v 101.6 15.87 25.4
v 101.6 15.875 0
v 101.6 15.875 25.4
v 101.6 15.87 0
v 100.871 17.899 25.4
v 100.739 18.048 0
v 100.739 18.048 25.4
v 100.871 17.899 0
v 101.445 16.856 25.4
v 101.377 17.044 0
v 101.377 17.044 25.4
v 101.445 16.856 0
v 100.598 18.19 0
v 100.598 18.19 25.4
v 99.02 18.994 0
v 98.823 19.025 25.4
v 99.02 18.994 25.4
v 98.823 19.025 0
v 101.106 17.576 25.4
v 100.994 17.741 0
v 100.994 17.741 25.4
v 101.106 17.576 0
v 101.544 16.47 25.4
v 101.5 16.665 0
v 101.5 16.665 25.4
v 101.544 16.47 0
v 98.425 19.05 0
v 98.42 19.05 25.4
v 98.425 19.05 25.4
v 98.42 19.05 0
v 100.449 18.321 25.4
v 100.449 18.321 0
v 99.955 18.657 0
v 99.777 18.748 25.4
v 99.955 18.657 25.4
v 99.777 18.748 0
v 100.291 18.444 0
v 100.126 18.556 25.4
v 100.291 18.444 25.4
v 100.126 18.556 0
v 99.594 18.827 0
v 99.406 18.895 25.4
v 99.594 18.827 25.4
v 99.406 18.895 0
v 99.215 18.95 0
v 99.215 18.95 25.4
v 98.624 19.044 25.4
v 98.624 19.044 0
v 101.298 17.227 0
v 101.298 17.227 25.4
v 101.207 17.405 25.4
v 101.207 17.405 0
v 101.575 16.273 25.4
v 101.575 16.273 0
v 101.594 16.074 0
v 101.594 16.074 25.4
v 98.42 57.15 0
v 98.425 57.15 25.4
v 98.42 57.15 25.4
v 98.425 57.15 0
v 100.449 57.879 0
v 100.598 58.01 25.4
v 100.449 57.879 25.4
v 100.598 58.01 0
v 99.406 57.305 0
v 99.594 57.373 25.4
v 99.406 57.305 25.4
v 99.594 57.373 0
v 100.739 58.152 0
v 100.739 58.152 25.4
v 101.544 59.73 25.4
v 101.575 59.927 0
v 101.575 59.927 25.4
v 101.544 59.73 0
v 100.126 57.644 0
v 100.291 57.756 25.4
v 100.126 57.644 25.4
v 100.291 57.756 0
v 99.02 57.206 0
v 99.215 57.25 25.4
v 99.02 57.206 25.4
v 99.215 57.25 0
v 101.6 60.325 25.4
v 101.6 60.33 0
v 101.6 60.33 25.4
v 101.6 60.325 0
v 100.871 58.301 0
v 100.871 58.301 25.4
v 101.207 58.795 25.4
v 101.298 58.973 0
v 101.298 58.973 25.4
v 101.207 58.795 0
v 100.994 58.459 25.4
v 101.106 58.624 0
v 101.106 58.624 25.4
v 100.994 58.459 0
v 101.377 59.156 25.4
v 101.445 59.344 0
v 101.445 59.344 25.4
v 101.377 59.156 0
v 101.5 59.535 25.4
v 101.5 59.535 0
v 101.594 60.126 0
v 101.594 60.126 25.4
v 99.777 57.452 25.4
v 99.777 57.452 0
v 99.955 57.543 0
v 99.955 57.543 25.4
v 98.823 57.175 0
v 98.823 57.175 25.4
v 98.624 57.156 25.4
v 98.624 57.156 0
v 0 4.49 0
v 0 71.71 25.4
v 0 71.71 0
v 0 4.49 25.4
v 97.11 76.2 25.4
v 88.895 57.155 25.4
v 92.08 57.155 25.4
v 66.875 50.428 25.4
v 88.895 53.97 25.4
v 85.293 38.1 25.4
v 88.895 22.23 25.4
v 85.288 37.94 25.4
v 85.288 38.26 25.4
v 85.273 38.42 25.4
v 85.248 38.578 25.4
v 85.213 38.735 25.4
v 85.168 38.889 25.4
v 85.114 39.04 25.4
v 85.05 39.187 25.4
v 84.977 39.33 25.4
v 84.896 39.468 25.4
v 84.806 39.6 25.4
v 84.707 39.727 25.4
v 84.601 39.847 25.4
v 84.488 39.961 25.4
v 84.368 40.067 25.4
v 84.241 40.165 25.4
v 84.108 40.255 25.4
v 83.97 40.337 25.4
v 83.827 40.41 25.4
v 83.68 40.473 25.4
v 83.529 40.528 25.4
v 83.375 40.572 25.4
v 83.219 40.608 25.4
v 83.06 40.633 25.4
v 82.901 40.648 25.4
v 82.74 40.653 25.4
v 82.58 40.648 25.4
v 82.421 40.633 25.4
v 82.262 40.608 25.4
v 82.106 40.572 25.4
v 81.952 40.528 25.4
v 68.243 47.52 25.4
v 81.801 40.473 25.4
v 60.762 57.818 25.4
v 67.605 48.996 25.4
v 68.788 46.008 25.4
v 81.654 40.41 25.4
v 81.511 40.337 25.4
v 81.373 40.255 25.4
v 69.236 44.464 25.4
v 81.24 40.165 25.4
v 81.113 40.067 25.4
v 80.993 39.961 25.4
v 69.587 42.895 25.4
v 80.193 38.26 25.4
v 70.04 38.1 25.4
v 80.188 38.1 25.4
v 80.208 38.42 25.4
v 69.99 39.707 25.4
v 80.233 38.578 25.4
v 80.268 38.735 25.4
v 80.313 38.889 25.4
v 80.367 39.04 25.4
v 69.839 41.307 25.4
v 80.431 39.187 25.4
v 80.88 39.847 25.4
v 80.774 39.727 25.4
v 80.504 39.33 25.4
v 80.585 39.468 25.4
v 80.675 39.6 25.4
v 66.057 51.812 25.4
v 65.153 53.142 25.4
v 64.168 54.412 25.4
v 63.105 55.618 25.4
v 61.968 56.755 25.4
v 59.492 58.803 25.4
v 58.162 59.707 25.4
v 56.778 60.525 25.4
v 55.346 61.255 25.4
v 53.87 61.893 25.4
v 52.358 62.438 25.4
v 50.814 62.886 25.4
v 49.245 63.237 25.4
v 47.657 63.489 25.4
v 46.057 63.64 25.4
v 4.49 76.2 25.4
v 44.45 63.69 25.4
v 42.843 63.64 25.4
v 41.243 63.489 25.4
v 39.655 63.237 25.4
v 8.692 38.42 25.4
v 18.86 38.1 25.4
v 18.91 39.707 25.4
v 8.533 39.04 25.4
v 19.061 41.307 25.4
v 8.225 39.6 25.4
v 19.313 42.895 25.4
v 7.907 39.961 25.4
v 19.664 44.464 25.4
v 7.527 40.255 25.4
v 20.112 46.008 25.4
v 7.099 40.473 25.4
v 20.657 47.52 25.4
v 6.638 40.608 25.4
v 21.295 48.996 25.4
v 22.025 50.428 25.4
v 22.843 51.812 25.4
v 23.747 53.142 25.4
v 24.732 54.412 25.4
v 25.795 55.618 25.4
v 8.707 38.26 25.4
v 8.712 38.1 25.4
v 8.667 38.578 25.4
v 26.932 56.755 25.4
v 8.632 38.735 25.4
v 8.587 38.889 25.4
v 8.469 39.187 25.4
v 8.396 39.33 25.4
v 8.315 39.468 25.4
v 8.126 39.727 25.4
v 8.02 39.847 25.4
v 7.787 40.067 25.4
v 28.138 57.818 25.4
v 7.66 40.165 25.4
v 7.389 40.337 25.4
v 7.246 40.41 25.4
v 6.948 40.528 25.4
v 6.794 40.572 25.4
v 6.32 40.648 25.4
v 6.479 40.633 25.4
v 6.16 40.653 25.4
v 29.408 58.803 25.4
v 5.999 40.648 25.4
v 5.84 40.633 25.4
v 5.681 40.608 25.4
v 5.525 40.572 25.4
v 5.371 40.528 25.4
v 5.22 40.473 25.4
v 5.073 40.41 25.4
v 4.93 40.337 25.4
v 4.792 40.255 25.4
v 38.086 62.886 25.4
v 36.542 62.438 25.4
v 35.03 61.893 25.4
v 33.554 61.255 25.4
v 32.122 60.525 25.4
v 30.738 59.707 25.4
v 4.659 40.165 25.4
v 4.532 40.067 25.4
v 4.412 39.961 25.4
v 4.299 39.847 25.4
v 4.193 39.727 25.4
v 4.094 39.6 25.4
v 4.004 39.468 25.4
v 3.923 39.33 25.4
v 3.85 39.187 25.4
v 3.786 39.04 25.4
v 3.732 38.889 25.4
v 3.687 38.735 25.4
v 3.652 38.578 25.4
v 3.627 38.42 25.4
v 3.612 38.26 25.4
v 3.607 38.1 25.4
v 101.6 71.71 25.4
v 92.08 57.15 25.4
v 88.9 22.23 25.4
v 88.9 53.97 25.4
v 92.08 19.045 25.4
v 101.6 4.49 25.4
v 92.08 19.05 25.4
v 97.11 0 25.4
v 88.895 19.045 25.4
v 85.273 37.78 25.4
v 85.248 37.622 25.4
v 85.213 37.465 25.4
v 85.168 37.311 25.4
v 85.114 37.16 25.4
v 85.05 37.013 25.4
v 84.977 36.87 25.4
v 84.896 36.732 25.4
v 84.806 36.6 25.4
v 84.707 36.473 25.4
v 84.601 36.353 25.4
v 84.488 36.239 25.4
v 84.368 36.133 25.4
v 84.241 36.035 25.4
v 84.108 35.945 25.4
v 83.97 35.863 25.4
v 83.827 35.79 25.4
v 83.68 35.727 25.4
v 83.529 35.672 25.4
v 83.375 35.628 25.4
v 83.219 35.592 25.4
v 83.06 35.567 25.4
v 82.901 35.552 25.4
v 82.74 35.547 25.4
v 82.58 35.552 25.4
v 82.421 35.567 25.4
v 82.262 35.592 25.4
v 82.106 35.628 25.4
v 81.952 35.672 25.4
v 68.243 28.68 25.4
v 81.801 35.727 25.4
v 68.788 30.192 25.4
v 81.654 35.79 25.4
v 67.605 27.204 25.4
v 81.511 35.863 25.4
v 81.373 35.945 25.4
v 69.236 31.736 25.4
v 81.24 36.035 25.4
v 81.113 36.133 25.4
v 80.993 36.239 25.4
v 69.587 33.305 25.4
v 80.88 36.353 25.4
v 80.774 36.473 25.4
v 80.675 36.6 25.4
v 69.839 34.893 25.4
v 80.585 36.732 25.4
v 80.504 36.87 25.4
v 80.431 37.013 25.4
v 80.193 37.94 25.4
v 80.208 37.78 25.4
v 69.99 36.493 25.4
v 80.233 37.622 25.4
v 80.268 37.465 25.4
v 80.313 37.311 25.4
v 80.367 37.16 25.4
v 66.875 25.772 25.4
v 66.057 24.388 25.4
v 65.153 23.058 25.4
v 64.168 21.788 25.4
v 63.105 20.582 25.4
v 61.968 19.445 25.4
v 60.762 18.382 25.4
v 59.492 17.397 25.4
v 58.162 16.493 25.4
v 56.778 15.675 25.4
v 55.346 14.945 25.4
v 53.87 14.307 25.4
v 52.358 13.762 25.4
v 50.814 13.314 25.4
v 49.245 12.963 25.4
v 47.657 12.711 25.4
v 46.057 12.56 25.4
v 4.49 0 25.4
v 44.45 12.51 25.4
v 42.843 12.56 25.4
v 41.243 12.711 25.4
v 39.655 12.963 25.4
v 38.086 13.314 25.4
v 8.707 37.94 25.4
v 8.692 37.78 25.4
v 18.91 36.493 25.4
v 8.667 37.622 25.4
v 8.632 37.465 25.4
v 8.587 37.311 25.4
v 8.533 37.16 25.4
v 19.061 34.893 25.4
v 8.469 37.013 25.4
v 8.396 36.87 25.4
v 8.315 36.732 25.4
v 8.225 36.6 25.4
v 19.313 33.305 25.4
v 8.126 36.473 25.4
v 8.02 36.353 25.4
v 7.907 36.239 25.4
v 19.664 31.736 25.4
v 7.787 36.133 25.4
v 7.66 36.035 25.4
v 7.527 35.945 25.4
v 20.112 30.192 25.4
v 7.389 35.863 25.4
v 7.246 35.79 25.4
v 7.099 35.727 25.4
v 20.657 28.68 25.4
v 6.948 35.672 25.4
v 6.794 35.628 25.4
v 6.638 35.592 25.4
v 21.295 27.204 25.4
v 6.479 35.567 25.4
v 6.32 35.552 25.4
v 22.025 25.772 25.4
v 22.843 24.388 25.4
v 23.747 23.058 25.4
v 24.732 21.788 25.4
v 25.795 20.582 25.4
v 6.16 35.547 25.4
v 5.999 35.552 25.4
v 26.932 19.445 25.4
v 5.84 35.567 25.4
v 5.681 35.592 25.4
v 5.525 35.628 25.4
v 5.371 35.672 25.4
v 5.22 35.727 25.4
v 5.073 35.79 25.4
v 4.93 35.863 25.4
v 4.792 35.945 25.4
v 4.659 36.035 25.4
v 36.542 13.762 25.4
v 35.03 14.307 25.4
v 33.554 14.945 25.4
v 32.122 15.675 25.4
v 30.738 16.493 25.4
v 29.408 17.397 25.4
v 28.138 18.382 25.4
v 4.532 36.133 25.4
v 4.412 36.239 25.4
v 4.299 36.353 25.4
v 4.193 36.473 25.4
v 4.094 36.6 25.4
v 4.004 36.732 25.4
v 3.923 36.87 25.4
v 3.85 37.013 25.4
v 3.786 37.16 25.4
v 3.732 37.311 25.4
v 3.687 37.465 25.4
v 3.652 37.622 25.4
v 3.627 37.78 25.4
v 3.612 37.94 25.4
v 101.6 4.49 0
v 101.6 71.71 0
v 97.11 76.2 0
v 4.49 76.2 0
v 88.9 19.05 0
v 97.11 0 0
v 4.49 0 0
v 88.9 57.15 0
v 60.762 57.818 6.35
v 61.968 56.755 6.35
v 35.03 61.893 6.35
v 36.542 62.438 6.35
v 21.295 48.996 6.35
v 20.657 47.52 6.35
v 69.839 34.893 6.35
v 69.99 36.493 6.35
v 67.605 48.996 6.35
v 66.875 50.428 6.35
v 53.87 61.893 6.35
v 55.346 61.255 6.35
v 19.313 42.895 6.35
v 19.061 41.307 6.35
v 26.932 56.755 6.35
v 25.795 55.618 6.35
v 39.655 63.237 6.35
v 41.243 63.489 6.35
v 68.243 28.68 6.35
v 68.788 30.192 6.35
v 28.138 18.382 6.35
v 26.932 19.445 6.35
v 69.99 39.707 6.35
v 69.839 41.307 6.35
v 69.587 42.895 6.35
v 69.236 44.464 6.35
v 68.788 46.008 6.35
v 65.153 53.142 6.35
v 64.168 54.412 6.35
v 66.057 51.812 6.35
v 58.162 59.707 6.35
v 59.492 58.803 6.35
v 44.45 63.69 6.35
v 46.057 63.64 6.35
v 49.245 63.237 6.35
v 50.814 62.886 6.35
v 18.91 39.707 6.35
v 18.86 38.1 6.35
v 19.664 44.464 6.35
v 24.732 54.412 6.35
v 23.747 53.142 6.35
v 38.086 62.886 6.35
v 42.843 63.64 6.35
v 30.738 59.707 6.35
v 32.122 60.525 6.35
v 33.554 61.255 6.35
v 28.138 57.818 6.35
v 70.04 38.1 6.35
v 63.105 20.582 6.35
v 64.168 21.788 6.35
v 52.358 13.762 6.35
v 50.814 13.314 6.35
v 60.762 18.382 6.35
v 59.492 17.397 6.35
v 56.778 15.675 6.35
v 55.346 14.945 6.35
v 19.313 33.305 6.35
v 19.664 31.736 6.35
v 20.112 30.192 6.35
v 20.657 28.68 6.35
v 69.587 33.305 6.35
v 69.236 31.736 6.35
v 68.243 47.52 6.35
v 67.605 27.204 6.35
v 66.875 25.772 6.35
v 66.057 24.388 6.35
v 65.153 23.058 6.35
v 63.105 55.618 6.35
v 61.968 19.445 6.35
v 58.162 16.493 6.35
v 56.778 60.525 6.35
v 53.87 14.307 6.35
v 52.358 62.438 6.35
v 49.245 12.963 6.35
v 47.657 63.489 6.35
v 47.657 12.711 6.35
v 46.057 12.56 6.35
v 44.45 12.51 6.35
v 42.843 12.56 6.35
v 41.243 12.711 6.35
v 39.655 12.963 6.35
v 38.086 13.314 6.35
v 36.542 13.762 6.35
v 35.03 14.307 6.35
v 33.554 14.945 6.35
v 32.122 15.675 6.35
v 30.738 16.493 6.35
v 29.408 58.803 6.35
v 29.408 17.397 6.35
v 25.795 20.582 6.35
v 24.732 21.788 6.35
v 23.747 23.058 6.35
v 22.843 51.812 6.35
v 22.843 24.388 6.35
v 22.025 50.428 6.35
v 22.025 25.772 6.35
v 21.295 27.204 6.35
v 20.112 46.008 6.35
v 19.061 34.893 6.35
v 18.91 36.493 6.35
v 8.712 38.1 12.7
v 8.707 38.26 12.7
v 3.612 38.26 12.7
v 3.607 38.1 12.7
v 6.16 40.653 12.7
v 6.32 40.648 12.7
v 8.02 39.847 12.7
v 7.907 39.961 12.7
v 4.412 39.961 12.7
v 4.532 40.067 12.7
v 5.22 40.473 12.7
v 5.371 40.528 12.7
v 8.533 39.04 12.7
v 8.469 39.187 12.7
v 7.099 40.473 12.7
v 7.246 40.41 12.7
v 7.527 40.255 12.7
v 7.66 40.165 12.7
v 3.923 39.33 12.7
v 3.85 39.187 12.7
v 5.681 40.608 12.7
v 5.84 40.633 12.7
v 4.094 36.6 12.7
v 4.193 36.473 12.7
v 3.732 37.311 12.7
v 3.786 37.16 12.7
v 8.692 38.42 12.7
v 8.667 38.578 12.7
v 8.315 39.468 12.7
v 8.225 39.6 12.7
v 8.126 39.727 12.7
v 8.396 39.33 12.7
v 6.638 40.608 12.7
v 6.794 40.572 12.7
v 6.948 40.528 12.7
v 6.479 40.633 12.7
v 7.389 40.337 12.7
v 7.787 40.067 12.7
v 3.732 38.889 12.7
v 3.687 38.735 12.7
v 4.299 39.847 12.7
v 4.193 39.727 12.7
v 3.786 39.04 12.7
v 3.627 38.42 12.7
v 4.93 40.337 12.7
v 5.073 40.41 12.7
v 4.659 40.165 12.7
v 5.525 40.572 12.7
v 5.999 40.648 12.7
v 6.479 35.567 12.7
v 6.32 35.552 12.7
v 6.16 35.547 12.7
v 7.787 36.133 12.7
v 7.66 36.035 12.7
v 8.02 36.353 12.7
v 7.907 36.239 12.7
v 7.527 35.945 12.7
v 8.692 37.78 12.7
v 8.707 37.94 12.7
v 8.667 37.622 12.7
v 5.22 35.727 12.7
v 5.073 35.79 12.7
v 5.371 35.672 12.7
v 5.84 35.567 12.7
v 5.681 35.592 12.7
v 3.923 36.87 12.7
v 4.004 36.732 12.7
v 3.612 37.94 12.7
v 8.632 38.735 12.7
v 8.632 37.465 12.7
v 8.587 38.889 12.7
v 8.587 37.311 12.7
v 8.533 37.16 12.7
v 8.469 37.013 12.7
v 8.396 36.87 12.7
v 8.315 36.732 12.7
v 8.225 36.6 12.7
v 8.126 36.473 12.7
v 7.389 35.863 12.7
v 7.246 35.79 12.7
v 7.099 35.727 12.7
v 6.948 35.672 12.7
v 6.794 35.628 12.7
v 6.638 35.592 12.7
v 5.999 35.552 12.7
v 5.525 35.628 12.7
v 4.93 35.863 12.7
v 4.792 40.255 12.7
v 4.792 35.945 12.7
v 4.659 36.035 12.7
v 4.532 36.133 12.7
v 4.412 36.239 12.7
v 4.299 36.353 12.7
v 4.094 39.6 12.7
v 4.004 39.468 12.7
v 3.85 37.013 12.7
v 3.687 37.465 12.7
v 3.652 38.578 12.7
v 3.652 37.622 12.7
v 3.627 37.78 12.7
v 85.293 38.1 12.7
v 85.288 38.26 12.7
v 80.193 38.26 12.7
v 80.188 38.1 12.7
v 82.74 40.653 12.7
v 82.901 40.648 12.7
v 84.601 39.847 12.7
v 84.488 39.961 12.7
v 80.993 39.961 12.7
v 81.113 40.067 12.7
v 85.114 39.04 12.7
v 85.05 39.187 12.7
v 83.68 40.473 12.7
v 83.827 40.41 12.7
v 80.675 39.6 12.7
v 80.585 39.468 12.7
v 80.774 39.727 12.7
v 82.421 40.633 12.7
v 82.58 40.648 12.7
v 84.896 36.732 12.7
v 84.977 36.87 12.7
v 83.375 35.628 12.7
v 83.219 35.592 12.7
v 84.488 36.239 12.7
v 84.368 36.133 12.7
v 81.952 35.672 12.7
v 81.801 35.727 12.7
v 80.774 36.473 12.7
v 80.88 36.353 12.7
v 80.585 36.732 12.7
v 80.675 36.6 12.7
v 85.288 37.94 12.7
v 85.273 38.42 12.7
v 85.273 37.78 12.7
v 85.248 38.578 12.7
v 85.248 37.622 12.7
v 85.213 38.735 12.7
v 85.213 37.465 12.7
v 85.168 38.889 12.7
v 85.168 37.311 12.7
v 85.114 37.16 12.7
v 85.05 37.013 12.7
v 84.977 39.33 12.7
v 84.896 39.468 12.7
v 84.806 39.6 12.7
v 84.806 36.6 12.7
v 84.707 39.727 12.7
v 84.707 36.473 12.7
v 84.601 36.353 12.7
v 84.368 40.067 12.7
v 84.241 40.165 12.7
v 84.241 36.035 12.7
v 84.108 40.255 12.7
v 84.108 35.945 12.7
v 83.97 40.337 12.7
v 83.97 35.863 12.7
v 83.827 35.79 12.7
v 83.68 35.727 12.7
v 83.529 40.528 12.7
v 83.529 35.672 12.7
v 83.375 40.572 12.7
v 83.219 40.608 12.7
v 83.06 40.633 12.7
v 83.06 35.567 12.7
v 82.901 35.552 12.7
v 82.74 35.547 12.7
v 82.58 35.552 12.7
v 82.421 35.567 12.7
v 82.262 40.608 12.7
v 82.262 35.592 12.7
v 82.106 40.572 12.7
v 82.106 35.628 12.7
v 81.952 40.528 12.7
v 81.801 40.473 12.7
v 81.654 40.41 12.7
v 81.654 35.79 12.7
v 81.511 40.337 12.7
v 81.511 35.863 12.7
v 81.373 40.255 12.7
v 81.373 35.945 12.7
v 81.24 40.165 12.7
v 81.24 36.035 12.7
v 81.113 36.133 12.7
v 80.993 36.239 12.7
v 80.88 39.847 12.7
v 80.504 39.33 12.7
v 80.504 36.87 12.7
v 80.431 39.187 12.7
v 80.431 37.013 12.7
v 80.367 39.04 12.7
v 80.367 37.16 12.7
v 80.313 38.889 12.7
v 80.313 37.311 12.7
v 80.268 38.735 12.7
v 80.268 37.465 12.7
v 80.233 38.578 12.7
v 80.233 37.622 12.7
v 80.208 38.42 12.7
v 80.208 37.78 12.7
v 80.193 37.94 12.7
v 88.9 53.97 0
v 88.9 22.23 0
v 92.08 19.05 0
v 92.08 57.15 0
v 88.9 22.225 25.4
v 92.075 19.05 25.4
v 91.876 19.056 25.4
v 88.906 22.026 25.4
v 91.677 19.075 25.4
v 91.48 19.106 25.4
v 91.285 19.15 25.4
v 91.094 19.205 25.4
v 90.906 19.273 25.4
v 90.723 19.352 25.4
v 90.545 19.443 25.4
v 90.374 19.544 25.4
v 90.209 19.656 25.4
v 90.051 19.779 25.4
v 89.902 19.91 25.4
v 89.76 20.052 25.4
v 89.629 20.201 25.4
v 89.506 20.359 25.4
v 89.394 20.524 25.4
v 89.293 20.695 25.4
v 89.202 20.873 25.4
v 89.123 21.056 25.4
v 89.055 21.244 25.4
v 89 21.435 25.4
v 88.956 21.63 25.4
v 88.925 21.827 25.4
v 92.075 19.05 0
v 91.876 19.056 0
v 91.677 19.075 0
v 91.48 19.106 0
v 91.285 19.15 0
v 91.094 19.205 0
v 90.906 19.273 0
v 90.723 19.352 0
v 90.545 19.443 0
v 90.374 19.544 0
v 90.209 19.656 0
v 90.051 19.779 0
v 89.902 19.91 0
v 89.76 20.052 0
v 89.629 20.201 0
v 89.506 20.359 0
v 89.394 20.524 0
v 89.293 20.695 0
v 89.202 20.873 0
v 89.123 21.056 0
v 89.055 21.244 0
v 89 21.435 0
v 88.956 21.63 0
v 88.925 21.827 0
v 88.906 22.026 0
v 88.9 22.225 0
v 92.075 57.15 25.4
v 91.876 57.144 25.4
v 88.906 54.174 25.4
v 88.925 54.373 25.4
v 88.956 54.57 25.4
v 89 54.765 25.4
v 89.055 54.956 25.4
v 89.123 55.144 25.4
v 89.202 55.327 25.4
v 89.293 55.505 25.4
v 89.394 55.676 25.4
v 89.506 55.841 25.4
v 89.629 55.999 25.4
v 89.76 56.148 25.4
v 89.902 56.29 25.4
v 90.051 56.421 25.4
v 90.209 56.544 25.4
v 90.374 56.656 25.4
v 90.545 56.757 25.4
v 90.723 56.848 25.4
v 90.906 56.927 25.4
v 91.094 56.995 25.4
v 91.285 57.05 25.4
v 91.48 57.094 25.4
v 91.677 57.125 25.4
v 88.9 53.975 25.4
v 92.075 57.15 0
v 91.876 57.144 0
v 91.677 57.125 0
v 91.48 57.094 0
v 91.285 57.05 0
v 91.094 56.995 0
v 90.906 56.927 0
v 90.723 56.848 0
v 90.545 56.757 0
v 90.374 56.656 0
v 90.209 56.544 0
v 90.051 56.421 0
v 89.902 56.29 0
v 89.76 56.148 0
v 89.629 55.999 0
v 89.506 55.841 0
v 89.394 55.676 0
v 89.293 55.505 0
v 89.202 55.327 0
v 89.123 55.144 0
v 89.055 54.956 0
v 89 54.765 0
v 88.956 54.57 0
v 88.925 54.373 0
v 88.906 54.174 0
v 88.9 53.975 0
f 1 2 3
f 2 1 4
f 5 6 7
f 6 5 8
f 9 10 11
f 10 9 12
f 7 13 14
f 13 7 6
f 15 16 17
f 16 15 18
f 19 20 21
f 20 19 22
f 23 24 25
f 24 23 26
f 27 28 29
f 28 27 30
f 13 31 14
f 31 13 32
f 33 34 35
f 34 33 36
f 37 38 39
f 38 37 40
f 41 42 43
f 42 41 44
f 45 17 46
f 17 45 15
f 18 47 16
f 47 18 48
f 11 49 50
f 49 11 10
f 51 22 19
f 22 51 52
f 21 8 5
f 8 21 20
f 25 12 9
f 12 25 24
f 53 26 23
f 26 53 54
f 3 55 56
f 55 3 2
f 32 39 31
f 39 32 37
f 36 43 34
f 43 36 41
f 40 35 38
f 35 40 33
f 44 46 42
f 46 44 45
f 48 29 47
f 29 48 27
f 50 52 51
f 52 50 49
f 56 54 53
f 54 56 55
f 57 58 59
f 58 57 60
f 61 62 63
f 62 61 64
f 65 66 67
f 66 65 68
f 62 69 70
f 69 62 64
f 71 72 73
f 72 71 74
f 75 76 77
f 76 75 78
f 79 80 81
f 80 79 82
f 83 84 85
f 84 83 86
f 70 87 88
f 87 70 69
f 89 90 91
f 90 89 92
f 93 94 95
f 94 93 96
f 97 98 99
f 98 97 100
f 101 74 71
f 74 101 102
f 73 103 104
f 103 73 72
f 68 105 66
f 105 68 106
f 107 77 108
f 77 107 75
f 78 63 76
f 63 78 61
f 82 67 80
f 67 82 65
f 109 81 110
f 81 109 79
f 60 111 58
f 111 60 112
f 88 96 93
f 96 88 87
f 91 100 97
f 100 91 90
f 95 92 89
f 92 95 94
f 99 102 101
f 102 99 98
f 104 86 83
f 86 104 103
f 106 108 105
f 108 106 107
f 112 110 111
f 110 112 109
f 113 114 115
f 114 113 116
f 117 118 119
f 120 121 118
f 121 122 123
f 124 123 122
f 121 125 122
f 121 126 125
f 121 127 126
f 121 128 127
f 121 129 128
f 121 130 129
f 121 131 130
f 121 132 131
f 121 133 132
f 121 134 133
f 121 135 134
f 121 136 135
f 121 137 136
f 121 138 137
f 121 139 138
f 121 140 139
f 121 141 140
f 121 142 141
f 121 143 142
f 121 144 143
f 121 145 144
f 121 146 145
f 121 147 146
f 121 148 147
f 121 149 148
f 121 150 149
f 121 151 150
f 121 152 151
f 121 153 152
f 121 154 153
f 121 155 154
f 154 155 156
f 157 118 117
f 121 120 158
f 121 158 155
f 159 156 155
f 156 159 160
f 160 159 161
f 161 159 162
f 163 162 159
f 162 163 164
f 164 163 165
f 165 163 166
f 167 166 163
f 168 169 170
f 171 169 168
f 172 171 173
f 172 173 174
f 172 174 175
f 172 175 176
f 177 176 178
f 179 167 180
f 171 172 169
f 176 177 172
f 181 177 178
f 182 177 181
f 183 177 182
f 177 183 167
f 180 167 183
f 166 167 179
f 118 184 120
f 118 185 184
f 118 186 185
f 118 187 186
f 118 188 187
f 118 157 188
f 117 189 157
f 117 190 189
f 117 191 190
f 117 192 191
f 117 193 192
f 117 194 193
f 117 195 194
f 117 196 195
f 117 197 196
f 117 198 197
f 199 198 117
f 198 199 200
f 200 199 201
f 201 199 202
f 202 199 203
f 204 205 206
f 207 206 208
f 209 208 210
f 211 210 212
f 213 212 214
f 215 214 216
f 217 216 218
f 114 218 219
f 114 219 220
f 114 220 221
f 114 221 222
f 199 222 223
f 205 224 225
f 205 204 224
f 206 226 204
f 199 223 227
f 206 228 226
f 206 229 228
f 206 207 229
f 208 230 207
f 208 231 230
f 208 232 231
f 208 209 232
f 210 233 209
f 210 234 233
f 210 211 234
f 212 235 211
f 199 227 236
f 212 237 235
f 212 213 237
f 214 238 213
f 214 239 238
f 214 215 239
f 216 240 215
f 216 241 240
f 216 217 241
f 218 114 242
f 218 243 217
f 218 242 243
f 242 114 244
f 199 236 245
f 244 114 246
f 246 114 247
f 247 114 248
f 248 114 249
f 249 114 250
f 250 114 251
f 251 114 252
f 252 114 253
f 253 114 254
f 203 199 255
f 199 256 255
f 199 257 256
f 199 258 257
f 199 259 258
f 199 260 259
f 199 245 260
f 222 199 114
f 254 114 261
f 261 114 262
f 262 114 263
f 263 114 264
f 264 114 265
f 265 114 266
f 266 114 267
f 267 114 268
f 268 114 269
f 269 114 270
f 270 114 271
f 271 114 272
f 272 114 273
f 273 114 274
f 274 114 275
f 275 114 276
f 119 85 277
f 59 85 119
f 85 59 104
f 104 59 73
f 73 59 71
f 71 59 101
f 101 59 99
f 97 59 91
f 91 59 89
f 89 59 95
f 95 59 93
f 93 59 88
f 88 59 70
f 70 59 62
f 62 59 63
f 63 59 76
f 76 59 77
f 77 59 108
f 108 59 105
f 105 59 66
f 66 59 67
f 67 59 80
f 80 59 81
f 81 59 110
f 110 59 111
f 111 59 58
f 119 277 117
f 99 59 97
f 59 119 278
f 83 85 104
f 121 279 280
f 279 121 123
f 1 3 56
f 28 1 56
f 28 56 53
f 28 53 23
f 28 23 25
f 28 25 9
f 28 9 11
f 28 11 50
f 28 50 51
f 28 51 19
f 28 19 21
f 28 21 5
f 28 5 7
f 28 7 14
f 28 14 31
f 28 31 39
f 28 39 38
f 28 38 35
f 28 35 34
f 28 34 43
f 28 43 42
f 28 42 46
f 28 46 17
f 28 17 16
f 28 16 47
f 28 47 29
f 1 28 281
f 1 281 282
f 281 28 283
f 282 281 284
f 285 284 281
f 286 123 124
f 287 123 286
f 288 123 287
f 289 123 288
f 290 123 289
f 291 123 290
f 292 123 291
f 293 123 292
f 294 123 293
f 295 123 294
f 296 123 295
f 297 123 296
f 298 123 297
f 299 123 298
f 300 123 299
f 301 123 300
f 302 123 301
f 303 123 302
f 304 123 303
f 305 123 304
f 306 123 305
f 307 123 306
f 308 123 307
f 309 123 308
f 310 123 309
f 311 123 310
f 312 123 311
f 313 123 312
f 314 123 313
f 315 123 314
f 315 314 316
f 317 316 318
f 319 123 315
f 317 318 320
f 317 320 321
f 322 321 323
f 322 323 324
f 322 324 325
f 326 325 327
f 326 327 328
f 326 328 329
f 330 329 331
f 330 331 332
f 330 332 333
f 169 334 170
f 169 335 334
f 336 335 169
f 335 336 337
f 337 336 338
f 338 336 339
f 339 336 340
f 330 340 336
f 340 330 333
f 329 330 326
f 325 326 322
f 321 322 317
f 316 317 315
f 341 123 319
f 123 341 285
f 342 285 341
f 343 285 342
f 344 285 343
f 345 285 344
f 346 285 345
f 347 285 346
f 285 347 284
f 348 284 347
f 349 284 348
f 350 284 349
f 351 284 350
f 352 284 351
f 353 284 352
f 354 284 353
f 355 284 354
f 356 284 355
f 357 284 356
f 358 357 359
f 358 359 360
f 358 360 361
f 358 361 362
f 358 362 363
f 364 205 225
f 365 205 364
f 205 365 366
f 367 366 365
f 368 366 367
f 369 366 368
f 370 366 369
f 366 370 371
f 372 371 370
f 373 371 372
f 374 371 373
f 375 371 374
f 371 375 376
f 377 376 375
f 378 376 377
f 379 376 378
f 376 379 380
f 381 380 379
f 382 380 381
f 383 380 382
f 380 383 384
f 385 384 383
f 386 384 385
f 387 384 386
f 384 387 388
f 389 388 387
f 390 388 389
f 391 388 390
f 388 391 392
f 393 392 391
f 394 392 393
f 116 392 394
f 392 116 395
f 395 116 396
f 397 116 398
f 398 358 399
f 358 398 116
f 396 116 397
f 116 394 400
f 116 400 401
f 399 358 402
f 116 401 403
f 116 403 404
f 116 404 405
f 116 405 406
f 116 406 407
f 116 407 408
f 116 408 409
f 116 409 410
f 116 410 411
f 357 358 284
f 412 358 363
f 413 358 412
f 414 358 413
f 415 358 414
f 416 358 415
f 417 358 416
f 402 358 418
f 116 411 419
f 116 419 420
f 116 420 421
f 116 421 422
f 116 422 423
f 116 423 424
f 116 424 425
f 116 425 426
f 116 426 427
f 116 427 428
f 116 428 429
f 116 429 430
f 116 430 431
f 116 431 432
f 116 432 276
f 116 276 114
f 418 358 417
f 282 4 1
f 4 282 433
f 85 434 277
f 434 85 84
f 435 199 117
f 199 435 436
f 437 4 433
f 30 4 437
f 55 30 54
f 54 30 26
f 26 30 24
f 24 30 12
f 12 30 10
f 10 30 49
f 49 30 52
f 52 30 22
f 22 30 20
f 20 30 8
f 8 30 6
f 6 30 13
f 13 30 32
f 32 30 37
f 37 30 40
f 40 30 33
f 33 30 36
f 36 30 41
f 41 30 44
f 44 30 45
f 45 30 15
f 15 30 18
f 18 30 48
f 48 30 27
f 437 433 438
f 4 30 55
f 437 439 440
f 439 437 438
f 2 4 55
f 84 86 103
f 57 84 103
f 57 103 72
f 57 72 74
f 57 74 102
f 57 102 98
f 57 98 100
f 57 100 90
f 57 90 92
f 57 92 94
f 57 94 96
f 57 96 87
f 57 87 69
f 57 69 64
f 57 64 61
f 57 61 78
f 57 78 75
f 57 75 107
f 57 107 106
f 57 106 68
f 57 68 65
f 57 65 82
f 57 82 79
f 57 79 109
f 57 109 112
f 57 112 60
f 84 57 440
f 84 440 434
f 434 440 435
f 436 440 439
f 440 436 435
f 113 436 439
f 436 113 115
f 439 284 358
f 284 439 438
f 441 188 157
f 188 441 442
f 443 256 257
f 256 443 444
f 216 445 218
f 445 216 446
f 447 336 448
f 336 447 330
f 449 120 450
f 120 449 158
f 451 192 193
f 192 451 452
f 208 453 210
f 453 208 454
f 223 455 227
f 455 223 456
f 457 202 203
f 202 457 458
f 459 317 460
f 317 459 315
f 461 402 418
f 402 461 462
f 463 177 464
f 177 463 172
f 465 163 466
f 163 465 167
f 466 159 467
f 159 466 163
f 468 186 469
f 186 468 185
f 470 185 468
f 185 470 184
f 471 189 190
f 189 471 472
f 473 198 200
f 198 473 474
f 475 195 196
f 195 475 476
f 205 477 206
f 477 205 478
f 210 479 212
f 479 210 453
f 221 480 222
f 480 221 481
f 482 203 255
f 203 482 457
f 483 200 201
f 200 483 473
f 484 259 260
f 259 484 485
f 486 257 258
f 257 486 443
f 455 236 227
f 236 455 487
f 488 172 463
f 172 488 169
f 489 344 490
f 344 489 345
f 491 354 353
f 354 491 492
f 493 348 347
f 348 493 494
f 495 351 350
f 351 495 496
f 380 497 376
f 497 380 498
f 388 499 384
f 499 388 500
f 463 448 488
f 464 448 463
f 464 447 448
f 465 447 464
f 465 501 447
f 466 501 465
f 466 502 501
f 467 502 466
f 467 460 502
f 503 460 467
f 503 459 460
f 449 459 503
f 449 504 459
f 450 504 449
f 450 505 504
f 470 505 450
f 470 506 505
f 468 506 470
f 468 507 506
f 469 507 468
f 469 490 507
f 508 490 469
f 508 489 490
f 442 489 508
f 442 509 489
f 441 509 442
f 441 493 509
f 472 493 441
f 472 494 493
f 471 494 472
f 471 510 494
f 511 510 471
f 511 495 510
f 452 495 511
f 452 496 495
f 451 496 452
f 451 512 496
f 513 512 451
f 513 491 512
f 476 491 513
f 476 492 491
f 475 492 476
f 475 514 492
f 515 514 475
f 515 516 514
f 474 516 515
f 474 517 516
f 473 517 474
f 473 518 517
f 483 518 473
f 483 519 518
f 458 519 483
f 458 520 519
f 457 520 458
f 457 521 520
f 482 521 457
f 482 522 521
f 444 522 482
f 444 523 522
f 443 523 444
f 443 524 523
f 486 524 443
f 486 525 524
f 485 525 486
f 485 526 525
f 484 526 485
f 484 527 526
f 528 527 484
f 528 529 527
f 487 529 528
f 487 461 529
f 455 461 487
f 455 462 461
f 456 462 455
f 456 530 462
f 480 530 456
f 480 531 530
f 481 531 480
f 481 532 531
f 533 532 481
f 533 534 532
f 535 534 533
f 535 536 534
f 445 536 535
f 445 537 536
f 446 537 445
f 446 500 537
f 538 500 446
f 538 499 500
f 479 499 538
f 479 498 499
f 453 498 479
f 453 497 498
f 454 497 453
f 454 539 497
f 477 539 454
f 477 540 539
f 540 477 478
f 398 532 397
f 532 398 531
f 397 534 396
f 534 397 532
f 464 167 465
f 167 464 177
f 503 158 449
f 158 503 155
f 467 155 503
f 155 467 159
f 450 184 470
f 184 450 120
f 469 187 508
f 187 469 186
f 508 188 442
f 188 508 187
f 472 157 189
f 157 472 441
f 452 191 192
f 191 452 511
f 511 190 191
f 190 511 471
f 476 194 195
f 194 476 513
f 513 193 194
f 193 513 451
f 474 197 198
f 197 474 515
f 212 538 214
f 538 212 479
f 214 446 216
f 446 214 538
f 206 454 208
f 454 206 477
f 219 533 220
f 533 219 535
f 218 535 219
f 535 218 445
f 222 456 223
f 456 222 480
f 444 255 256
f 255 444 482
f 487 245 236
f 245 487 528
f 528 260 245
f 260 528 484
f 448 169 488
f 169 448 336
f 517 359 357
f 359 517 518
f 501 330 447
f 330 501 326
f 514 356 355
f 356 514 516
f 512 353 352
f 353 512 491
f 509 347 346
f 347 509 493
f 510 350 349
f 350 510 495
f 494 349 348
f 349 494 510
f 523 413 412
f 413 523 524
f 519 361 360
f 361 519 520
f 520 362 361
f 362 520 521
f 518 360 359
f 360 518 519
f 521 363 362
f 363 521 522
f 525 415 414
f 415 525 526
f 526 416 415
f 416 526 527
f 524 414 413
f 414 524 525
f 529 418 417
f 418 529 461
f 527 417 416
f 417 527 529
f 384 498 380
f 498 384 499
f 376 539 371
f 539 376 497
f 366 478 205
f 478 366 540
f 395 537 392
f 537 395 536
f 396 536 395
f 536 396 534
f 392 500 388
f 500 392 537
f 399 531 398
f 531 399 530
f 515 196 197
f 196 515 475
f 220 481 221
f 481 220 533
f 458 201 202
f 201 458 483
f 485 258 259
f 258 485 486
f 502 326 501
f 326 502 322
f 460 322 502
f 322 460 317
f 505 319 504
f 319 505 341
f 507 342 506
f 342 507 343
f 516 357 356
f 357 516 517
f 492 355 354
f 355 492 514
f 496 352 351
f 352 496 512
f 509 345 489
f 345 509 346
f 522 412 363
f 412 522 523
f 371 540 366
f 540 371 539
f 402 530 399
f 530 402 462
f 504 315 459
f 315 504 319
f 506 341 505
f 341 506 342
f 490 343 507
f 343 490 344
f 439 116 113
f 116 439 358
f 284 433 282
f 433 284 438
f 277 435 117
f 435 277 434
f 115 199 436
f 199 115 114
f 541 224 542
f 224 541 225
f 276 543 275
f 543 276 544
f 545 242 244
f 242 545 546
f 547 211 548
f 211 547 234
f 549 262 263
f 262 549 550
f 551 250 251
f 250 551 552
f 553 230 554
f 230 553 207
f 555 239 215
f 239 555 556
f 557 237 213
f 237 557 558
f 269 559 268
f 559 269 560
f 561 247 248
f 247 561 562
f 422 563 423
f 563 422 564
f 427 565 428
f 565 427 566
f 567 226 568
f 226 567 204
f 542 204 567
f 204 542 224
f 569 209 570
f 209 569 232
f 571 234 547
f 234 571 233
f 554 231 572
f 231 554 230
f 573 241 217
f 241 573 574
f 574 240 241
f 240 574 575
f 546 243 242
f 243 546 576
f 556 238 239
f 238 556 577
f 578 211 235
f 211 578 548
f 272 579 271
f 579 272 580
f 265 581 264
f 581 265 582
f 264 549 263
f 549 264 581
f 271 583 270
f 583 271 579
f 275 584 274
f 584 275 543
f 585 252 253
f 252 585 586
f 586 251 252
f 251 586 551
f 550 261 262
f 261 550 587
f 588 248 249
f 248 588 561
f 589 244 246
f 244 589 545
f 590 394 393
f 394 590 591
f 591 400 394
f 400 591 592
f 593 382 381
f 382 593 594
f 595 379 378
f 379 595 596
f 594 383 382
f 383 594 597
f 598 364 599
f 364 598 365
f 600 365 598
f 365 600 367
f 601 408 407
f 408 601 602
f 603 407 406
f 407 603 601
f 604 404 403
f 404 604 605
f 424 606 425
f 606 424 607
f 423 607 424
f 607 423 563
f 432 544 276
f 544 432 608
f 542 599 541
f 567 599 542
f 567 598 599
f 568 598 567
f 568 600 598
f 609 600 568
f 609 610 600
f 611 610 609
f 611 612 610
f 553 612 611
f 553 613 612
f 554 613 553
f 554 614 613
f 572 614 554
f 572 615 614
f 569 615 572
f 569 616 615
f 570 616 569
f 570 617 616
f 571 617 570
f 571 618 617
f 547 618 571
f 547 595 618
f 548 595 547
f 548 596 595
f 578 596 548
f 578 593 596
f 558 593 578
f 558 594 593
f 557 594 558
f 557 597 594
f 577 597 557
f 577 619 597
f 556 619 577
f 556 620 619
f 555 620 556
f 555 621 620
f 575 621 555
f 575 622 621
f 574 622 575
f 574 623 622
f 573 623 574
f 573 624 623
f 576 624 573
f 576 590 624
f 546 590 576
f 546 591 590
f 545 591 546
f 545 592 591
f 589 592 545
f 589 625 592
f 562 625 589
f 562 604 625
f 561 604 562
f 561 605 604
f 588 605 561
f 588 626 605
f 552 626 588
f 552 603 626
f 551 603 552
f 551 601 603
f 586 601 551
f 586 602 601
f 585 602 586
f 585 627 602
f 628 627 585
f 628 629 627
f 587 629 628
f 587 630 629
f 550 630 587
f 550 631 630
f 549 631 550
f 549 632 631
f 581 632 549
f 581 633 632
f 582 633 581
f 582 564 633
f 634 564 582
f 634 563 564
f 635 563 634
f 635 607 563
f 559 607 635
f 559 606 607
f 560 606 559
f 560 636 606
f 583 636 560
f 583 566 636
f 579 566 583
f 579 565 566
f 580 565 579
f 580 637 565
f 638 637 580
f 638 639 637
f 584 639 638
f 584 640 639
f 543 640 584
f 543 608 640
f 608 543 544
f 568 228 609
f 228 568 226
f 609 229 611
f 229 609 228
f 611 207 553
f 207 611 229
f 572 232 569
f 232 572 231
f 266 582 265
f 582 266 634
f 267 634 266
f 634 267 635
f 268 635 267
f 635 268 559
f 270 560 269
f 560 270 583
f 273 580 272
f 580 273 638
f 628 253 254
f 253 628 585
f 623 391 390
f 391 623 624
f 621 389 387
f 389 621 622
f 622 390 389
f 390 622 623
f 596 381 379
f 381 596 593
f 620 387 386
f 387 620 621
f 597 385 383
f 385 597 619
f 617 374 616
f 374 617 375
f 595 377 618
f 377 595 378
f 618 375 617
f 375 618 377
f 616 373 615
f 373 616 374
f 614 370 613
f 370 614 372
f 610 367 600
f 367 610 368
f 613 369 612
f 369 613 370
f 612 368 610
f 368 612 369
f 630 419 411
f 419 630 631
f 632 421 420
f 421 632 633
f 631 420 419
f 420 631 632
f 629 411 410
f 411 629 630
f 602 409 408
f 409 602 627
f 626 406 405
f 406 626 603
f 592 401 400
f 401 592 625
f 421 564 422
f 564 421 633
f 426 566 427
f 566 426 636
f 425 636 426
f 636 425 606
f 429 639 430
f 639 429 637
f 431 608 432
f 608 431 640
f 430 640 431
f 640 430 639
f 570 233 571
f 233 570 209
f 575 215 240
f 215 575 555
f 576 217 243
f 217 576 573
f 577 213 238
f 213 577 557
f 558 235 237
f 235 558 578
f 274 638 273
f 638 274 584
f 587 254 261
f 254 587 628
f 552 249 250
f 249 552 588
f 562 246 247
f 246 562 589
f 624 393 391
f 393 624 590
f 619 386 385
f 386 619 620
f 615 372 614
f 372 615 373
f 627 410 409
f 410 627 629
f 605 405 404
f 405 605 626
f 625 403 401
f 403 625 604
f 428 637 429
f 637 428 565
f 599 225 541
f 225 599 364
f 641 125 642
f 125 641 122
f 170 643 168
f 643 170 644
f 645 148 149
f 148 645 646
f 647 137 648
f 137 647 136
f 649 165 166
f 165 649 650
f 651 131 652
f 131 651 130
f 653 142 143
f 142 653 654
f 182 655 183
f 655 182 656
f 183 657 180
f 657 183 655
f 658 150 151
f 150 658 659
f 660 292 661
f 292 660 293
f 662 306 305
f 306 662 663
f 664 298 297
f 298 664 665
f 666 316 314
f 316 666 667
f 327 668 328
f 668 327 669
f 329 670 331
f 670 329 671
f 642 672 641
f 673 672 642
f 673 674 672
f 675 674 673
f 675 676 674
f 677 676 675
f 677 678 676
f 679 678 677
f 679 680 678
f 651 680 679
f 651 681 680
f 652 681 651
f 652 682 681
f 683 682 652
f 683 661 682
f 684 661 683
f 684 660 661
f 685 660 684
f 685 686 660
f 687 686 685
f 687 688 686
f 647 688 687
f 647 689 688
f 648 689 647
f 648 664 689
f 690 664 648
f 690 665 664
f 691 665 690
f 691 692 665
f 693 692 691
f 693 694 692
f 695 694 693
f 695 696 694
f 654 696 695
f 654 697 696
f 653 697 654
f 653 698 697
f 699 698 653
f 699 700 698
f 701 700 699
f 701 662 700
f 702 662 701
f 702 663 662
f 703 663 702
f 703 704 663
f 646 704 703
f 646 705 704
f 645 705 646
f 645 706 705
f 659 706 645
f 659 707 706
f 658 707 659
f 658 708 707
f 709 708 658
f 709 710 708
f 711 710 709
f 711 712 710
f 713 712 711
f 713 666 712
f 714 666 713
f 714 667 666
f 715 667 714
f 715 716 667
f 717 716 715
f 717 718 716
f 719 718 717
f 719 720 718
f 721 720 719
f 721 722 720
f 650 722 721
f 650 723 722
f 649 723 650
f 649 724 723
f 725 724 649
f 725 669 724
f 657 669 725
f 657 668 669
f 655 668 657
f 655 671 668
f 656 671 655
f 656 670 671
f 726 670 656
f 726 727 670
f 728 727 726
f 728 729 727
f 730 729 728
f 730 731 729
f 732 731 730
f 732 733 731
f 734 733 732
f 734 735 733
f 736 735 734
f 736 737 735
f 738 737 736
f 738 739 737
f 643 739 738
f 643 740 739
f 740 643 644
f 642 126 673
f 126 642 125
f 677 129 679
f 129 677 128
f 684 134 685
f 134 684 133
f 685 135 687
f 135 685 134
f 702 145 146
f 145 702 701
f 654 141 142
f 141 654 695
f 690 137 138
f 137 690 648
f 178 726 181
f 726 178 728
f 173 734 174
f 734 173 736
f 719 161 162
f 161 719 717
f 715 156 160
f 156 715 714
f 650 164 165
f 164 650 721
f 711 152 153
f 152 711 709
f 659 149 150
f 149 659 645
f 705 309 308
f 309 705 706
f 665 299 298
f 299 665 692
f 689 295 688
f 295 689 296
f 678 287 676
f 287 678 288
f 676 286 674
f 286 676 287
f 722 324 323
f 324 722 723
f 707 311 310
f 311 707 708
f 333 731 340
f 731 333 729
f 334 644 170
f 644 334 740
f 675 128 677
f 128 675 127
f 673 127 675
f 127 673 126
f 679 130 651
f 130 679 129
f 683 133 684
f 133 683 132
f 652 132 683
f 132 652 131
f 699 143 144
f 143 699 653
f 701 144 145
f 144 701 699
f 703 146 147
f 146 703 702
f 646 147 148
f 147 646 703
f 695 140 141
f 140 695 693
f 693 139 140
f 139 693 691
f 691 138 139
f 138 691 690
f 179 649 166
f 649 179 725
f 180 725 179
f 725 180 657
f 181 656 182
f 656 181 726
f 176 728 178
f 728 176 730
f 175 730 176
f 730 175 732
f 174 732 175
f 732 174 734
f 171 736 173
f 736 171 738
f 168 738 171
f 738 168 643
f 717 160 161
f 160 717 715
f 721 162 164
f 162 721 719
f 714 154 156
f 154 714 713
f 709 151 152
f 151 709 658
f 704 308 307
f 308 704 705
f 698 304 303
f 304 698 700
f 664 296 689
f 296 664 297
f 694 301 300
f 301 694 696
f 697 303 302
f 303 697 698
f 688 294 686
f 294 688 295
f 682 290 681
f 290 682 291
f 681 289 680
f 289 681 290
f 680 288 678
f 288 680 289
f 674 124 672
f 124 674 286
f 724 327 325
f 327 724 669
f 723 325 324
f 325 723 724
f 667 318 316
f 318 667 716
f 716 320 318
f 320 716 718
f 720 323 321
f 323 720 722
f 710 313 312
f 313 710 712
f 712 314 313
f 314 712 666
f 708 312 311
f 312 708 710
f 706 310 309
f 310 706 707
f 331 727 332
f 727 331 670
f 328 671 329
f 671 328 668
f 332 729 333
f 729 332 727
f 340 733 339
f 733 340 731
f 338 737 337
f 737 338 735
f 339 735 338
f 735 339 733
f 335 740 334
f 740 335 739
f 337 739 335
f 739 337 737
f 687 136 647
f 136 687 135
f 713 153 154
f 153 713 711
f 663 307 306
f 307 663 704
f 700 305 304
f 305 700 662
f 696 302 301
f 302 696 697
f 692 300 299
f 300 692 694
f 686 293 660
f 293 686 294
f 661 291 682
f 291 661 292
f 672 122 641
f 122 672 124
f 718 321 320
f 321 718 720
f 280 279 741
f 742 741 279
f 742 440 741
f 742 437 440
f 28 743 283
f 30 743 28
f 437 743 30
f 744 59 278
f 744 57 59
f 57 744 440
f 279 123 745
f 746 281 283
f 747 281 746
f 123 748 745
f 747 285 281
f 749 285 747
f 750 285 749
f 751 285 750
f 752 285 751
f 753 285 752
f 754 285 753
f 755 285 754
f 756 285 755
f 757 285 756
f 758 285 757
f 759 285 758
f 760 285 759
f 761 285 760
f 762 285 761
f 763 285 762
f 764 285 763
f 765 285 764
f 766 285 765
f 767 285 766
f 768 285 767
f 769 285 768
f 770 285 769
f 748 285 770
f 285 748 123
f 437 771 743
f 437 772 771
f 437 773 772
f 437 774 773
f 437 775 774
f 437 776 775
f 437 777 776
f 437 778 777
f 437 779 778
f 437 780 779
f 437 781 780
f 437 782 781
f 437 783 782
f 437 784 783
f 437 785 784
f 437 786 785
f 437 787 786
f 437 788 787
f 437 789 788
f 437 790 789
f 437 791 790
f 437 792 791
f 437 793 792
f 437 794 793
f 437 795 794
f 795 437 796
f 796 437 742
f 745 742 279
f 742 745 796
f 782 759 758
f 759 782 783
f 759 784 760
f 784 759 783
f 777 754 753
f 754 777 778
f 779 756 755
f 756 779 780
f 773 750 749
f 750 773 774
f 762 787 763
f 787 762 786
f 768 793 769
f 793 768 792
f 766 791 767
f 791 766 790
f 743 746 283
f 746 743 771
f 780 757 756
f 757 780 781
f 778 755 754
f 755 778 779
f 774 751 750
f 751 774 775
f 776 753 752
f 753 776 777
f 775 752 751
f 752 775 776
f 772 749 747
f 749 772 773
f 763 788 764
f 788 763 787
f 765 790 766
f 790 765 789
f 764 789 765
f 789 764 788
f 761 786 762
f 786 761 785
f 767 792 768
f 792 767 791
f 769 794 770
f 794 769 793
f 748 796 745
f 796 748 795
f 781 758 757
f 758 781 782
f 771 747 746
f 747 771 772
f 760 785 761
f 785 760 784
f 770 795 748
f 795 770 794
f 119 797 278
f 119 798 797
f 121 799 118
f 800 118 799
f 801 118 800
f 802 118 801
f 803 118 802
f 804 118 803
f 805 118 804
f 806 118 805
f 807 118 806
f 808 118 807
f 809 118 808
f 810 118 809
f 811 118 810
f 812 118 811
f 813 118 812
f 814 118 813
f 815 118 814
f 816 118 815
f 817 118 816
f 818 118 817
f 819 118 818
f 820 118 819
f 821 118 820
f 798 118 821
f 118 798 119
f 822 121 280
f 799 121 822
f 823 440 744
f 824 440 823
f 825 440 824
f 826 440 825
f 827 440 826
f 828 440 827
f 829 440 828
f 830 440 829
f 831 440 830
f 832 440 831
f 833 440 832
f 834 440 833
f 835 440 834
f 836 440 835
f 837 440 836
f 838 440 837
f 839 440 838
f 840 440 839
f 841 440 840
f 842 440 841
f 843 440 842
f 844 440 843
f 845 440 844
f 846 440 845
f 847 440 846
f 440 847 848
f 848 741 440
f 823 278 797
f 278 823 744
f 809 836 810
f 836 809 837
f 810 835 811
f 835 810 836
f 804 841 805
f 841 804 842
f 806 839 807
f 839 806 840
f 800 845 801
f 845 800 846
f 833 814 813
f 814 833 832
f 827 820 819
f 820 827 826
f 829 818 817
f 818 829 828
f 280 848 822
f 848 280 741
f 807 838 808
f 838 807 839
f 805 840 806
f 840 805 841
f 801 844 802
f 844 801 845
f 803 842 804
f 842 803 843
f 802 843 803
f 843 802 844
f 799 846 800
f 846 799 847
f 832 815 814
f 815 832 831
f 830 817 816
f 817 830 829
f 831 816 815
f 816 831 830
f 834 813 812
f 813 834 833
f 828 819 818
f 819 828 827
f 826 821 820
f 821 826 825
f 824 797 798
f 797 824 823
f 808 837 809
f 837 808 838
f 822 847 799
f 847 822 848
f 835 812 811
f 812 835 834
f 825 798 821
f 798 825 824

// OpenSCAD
$fn=100;

//http://forum.openscad.org/rounded-corners-td3843.html
module fillet(r, h) {
    translate([r / 2, r / 2, 0])

        difference() {
            cube([r + 0.01, r + 0.01, h], center = true);

            translate([r/2, r/2, 0])
                cylinder(r = r, h = h + 1, center = true);

        }
}


in_to_mm = 25.4;

box_x = 4 * in_to_mm;
box_y = 3 * in_to_mm; 
box_z = 1 * in_to_mm; 
box_thickness = (3/16) * in_to_mm;

soil_z = 0.75 * in_to_mm;
soil_r = 1.0075 * in_to_mm;

quarter_20_tap = 0.2010/2 * in_to_mm;

push_cutout_depth = 0.5 * in_to_mm;
push_cutout_width = 1.5 * in_to_mm;

fillet_r = (1/8) * in_to_mm;

corner_cut = 0.25 * in_to_mm;

difference()
{
        
    // Main block of material
    cube([box_x, box_y, box_z]);
        
    // Material hole
    sample_x_inset = 1.75 * in_to_mm;
    translate([sample_x_inset ,box_y/2, box_z-soil_z])
    cylinder(soil_z, soil_r, soil_r);
    
    // Cut off corners to help insertion    
    rotate([0,0,45])
    translate([0,0, box_z/2])
    cube([corner_cut, corner_cut, box_z*1.5], center=true);
    
    
    translate([box_x,0, box_z/2])
    rotate([0,0,45])
    cube([corner_cut, corner_cut, box_z*1.5], center=true);
    
    translate([box_x, box_y, box_z/2])
    rotate([0,0,45])
    cube([corner_cut, corner_cut, box_z*1.5], center=true);
    
    translate([0, box_y, box_z/2])
    rotate([0,0,45])
    cube([corner_cut, corner_cut, box_z*1.5], center=true);

    // Box clamp screws
    clamp_screw_depth = 0.5 * in_to_mm;
    clamp_to_edge = 0.5 * in_to_mm;
    
    translate([sample_x_inset-soil_r-clamp_to_edge,box_y/2, box_z-clamp_screw_depth])
    cylinder(clamp_screw_depth, quarter_20_tap, quarter_20_tap);
    
    translate([sample_x_inset+soil_r+clamp_to_edge,box_y/2, box_z-clamp_screw_depth])
    cylinder(clamp_screw_depth, quarter_20_tap, quarter_20_tap);
    
    // Cutout for inserting push rod    
    translate([box_x-push_cutout_depth, (box_y-push_cutout_width)/2, 0])
    cube([push_cutout_depth, push_cutout_width, box_z]);
    
    // Remove fillets on corners of push out area
    // Factor of 1.5 on height is just to ensure full cut on the design
    translate([box_x, box_y-push_cutout_width*1.5, box_z/2])
    rotate([0,0,180])
    fillet(fillet_r, box_z*1.5);
    
    translate([box_x, box_y-push_cutout_width*0.5, box_z/2])
    rotate([0,0,90])
    fillet(fillet_r, box_z*1.5);
}

// Add fillets for push rod area to reduce stress concentrations

translate([box_x-push_cutout_depth, box_y-push_cutout_width*1.5, box_z/2])
fillet(fillet_r, box_z);

translate([box_x-push_cutout_depth, box_y-push_cutout_width*0.5, box_z/2])
rotate([0,0,-90])
fillet(fillet_r, box_z);
